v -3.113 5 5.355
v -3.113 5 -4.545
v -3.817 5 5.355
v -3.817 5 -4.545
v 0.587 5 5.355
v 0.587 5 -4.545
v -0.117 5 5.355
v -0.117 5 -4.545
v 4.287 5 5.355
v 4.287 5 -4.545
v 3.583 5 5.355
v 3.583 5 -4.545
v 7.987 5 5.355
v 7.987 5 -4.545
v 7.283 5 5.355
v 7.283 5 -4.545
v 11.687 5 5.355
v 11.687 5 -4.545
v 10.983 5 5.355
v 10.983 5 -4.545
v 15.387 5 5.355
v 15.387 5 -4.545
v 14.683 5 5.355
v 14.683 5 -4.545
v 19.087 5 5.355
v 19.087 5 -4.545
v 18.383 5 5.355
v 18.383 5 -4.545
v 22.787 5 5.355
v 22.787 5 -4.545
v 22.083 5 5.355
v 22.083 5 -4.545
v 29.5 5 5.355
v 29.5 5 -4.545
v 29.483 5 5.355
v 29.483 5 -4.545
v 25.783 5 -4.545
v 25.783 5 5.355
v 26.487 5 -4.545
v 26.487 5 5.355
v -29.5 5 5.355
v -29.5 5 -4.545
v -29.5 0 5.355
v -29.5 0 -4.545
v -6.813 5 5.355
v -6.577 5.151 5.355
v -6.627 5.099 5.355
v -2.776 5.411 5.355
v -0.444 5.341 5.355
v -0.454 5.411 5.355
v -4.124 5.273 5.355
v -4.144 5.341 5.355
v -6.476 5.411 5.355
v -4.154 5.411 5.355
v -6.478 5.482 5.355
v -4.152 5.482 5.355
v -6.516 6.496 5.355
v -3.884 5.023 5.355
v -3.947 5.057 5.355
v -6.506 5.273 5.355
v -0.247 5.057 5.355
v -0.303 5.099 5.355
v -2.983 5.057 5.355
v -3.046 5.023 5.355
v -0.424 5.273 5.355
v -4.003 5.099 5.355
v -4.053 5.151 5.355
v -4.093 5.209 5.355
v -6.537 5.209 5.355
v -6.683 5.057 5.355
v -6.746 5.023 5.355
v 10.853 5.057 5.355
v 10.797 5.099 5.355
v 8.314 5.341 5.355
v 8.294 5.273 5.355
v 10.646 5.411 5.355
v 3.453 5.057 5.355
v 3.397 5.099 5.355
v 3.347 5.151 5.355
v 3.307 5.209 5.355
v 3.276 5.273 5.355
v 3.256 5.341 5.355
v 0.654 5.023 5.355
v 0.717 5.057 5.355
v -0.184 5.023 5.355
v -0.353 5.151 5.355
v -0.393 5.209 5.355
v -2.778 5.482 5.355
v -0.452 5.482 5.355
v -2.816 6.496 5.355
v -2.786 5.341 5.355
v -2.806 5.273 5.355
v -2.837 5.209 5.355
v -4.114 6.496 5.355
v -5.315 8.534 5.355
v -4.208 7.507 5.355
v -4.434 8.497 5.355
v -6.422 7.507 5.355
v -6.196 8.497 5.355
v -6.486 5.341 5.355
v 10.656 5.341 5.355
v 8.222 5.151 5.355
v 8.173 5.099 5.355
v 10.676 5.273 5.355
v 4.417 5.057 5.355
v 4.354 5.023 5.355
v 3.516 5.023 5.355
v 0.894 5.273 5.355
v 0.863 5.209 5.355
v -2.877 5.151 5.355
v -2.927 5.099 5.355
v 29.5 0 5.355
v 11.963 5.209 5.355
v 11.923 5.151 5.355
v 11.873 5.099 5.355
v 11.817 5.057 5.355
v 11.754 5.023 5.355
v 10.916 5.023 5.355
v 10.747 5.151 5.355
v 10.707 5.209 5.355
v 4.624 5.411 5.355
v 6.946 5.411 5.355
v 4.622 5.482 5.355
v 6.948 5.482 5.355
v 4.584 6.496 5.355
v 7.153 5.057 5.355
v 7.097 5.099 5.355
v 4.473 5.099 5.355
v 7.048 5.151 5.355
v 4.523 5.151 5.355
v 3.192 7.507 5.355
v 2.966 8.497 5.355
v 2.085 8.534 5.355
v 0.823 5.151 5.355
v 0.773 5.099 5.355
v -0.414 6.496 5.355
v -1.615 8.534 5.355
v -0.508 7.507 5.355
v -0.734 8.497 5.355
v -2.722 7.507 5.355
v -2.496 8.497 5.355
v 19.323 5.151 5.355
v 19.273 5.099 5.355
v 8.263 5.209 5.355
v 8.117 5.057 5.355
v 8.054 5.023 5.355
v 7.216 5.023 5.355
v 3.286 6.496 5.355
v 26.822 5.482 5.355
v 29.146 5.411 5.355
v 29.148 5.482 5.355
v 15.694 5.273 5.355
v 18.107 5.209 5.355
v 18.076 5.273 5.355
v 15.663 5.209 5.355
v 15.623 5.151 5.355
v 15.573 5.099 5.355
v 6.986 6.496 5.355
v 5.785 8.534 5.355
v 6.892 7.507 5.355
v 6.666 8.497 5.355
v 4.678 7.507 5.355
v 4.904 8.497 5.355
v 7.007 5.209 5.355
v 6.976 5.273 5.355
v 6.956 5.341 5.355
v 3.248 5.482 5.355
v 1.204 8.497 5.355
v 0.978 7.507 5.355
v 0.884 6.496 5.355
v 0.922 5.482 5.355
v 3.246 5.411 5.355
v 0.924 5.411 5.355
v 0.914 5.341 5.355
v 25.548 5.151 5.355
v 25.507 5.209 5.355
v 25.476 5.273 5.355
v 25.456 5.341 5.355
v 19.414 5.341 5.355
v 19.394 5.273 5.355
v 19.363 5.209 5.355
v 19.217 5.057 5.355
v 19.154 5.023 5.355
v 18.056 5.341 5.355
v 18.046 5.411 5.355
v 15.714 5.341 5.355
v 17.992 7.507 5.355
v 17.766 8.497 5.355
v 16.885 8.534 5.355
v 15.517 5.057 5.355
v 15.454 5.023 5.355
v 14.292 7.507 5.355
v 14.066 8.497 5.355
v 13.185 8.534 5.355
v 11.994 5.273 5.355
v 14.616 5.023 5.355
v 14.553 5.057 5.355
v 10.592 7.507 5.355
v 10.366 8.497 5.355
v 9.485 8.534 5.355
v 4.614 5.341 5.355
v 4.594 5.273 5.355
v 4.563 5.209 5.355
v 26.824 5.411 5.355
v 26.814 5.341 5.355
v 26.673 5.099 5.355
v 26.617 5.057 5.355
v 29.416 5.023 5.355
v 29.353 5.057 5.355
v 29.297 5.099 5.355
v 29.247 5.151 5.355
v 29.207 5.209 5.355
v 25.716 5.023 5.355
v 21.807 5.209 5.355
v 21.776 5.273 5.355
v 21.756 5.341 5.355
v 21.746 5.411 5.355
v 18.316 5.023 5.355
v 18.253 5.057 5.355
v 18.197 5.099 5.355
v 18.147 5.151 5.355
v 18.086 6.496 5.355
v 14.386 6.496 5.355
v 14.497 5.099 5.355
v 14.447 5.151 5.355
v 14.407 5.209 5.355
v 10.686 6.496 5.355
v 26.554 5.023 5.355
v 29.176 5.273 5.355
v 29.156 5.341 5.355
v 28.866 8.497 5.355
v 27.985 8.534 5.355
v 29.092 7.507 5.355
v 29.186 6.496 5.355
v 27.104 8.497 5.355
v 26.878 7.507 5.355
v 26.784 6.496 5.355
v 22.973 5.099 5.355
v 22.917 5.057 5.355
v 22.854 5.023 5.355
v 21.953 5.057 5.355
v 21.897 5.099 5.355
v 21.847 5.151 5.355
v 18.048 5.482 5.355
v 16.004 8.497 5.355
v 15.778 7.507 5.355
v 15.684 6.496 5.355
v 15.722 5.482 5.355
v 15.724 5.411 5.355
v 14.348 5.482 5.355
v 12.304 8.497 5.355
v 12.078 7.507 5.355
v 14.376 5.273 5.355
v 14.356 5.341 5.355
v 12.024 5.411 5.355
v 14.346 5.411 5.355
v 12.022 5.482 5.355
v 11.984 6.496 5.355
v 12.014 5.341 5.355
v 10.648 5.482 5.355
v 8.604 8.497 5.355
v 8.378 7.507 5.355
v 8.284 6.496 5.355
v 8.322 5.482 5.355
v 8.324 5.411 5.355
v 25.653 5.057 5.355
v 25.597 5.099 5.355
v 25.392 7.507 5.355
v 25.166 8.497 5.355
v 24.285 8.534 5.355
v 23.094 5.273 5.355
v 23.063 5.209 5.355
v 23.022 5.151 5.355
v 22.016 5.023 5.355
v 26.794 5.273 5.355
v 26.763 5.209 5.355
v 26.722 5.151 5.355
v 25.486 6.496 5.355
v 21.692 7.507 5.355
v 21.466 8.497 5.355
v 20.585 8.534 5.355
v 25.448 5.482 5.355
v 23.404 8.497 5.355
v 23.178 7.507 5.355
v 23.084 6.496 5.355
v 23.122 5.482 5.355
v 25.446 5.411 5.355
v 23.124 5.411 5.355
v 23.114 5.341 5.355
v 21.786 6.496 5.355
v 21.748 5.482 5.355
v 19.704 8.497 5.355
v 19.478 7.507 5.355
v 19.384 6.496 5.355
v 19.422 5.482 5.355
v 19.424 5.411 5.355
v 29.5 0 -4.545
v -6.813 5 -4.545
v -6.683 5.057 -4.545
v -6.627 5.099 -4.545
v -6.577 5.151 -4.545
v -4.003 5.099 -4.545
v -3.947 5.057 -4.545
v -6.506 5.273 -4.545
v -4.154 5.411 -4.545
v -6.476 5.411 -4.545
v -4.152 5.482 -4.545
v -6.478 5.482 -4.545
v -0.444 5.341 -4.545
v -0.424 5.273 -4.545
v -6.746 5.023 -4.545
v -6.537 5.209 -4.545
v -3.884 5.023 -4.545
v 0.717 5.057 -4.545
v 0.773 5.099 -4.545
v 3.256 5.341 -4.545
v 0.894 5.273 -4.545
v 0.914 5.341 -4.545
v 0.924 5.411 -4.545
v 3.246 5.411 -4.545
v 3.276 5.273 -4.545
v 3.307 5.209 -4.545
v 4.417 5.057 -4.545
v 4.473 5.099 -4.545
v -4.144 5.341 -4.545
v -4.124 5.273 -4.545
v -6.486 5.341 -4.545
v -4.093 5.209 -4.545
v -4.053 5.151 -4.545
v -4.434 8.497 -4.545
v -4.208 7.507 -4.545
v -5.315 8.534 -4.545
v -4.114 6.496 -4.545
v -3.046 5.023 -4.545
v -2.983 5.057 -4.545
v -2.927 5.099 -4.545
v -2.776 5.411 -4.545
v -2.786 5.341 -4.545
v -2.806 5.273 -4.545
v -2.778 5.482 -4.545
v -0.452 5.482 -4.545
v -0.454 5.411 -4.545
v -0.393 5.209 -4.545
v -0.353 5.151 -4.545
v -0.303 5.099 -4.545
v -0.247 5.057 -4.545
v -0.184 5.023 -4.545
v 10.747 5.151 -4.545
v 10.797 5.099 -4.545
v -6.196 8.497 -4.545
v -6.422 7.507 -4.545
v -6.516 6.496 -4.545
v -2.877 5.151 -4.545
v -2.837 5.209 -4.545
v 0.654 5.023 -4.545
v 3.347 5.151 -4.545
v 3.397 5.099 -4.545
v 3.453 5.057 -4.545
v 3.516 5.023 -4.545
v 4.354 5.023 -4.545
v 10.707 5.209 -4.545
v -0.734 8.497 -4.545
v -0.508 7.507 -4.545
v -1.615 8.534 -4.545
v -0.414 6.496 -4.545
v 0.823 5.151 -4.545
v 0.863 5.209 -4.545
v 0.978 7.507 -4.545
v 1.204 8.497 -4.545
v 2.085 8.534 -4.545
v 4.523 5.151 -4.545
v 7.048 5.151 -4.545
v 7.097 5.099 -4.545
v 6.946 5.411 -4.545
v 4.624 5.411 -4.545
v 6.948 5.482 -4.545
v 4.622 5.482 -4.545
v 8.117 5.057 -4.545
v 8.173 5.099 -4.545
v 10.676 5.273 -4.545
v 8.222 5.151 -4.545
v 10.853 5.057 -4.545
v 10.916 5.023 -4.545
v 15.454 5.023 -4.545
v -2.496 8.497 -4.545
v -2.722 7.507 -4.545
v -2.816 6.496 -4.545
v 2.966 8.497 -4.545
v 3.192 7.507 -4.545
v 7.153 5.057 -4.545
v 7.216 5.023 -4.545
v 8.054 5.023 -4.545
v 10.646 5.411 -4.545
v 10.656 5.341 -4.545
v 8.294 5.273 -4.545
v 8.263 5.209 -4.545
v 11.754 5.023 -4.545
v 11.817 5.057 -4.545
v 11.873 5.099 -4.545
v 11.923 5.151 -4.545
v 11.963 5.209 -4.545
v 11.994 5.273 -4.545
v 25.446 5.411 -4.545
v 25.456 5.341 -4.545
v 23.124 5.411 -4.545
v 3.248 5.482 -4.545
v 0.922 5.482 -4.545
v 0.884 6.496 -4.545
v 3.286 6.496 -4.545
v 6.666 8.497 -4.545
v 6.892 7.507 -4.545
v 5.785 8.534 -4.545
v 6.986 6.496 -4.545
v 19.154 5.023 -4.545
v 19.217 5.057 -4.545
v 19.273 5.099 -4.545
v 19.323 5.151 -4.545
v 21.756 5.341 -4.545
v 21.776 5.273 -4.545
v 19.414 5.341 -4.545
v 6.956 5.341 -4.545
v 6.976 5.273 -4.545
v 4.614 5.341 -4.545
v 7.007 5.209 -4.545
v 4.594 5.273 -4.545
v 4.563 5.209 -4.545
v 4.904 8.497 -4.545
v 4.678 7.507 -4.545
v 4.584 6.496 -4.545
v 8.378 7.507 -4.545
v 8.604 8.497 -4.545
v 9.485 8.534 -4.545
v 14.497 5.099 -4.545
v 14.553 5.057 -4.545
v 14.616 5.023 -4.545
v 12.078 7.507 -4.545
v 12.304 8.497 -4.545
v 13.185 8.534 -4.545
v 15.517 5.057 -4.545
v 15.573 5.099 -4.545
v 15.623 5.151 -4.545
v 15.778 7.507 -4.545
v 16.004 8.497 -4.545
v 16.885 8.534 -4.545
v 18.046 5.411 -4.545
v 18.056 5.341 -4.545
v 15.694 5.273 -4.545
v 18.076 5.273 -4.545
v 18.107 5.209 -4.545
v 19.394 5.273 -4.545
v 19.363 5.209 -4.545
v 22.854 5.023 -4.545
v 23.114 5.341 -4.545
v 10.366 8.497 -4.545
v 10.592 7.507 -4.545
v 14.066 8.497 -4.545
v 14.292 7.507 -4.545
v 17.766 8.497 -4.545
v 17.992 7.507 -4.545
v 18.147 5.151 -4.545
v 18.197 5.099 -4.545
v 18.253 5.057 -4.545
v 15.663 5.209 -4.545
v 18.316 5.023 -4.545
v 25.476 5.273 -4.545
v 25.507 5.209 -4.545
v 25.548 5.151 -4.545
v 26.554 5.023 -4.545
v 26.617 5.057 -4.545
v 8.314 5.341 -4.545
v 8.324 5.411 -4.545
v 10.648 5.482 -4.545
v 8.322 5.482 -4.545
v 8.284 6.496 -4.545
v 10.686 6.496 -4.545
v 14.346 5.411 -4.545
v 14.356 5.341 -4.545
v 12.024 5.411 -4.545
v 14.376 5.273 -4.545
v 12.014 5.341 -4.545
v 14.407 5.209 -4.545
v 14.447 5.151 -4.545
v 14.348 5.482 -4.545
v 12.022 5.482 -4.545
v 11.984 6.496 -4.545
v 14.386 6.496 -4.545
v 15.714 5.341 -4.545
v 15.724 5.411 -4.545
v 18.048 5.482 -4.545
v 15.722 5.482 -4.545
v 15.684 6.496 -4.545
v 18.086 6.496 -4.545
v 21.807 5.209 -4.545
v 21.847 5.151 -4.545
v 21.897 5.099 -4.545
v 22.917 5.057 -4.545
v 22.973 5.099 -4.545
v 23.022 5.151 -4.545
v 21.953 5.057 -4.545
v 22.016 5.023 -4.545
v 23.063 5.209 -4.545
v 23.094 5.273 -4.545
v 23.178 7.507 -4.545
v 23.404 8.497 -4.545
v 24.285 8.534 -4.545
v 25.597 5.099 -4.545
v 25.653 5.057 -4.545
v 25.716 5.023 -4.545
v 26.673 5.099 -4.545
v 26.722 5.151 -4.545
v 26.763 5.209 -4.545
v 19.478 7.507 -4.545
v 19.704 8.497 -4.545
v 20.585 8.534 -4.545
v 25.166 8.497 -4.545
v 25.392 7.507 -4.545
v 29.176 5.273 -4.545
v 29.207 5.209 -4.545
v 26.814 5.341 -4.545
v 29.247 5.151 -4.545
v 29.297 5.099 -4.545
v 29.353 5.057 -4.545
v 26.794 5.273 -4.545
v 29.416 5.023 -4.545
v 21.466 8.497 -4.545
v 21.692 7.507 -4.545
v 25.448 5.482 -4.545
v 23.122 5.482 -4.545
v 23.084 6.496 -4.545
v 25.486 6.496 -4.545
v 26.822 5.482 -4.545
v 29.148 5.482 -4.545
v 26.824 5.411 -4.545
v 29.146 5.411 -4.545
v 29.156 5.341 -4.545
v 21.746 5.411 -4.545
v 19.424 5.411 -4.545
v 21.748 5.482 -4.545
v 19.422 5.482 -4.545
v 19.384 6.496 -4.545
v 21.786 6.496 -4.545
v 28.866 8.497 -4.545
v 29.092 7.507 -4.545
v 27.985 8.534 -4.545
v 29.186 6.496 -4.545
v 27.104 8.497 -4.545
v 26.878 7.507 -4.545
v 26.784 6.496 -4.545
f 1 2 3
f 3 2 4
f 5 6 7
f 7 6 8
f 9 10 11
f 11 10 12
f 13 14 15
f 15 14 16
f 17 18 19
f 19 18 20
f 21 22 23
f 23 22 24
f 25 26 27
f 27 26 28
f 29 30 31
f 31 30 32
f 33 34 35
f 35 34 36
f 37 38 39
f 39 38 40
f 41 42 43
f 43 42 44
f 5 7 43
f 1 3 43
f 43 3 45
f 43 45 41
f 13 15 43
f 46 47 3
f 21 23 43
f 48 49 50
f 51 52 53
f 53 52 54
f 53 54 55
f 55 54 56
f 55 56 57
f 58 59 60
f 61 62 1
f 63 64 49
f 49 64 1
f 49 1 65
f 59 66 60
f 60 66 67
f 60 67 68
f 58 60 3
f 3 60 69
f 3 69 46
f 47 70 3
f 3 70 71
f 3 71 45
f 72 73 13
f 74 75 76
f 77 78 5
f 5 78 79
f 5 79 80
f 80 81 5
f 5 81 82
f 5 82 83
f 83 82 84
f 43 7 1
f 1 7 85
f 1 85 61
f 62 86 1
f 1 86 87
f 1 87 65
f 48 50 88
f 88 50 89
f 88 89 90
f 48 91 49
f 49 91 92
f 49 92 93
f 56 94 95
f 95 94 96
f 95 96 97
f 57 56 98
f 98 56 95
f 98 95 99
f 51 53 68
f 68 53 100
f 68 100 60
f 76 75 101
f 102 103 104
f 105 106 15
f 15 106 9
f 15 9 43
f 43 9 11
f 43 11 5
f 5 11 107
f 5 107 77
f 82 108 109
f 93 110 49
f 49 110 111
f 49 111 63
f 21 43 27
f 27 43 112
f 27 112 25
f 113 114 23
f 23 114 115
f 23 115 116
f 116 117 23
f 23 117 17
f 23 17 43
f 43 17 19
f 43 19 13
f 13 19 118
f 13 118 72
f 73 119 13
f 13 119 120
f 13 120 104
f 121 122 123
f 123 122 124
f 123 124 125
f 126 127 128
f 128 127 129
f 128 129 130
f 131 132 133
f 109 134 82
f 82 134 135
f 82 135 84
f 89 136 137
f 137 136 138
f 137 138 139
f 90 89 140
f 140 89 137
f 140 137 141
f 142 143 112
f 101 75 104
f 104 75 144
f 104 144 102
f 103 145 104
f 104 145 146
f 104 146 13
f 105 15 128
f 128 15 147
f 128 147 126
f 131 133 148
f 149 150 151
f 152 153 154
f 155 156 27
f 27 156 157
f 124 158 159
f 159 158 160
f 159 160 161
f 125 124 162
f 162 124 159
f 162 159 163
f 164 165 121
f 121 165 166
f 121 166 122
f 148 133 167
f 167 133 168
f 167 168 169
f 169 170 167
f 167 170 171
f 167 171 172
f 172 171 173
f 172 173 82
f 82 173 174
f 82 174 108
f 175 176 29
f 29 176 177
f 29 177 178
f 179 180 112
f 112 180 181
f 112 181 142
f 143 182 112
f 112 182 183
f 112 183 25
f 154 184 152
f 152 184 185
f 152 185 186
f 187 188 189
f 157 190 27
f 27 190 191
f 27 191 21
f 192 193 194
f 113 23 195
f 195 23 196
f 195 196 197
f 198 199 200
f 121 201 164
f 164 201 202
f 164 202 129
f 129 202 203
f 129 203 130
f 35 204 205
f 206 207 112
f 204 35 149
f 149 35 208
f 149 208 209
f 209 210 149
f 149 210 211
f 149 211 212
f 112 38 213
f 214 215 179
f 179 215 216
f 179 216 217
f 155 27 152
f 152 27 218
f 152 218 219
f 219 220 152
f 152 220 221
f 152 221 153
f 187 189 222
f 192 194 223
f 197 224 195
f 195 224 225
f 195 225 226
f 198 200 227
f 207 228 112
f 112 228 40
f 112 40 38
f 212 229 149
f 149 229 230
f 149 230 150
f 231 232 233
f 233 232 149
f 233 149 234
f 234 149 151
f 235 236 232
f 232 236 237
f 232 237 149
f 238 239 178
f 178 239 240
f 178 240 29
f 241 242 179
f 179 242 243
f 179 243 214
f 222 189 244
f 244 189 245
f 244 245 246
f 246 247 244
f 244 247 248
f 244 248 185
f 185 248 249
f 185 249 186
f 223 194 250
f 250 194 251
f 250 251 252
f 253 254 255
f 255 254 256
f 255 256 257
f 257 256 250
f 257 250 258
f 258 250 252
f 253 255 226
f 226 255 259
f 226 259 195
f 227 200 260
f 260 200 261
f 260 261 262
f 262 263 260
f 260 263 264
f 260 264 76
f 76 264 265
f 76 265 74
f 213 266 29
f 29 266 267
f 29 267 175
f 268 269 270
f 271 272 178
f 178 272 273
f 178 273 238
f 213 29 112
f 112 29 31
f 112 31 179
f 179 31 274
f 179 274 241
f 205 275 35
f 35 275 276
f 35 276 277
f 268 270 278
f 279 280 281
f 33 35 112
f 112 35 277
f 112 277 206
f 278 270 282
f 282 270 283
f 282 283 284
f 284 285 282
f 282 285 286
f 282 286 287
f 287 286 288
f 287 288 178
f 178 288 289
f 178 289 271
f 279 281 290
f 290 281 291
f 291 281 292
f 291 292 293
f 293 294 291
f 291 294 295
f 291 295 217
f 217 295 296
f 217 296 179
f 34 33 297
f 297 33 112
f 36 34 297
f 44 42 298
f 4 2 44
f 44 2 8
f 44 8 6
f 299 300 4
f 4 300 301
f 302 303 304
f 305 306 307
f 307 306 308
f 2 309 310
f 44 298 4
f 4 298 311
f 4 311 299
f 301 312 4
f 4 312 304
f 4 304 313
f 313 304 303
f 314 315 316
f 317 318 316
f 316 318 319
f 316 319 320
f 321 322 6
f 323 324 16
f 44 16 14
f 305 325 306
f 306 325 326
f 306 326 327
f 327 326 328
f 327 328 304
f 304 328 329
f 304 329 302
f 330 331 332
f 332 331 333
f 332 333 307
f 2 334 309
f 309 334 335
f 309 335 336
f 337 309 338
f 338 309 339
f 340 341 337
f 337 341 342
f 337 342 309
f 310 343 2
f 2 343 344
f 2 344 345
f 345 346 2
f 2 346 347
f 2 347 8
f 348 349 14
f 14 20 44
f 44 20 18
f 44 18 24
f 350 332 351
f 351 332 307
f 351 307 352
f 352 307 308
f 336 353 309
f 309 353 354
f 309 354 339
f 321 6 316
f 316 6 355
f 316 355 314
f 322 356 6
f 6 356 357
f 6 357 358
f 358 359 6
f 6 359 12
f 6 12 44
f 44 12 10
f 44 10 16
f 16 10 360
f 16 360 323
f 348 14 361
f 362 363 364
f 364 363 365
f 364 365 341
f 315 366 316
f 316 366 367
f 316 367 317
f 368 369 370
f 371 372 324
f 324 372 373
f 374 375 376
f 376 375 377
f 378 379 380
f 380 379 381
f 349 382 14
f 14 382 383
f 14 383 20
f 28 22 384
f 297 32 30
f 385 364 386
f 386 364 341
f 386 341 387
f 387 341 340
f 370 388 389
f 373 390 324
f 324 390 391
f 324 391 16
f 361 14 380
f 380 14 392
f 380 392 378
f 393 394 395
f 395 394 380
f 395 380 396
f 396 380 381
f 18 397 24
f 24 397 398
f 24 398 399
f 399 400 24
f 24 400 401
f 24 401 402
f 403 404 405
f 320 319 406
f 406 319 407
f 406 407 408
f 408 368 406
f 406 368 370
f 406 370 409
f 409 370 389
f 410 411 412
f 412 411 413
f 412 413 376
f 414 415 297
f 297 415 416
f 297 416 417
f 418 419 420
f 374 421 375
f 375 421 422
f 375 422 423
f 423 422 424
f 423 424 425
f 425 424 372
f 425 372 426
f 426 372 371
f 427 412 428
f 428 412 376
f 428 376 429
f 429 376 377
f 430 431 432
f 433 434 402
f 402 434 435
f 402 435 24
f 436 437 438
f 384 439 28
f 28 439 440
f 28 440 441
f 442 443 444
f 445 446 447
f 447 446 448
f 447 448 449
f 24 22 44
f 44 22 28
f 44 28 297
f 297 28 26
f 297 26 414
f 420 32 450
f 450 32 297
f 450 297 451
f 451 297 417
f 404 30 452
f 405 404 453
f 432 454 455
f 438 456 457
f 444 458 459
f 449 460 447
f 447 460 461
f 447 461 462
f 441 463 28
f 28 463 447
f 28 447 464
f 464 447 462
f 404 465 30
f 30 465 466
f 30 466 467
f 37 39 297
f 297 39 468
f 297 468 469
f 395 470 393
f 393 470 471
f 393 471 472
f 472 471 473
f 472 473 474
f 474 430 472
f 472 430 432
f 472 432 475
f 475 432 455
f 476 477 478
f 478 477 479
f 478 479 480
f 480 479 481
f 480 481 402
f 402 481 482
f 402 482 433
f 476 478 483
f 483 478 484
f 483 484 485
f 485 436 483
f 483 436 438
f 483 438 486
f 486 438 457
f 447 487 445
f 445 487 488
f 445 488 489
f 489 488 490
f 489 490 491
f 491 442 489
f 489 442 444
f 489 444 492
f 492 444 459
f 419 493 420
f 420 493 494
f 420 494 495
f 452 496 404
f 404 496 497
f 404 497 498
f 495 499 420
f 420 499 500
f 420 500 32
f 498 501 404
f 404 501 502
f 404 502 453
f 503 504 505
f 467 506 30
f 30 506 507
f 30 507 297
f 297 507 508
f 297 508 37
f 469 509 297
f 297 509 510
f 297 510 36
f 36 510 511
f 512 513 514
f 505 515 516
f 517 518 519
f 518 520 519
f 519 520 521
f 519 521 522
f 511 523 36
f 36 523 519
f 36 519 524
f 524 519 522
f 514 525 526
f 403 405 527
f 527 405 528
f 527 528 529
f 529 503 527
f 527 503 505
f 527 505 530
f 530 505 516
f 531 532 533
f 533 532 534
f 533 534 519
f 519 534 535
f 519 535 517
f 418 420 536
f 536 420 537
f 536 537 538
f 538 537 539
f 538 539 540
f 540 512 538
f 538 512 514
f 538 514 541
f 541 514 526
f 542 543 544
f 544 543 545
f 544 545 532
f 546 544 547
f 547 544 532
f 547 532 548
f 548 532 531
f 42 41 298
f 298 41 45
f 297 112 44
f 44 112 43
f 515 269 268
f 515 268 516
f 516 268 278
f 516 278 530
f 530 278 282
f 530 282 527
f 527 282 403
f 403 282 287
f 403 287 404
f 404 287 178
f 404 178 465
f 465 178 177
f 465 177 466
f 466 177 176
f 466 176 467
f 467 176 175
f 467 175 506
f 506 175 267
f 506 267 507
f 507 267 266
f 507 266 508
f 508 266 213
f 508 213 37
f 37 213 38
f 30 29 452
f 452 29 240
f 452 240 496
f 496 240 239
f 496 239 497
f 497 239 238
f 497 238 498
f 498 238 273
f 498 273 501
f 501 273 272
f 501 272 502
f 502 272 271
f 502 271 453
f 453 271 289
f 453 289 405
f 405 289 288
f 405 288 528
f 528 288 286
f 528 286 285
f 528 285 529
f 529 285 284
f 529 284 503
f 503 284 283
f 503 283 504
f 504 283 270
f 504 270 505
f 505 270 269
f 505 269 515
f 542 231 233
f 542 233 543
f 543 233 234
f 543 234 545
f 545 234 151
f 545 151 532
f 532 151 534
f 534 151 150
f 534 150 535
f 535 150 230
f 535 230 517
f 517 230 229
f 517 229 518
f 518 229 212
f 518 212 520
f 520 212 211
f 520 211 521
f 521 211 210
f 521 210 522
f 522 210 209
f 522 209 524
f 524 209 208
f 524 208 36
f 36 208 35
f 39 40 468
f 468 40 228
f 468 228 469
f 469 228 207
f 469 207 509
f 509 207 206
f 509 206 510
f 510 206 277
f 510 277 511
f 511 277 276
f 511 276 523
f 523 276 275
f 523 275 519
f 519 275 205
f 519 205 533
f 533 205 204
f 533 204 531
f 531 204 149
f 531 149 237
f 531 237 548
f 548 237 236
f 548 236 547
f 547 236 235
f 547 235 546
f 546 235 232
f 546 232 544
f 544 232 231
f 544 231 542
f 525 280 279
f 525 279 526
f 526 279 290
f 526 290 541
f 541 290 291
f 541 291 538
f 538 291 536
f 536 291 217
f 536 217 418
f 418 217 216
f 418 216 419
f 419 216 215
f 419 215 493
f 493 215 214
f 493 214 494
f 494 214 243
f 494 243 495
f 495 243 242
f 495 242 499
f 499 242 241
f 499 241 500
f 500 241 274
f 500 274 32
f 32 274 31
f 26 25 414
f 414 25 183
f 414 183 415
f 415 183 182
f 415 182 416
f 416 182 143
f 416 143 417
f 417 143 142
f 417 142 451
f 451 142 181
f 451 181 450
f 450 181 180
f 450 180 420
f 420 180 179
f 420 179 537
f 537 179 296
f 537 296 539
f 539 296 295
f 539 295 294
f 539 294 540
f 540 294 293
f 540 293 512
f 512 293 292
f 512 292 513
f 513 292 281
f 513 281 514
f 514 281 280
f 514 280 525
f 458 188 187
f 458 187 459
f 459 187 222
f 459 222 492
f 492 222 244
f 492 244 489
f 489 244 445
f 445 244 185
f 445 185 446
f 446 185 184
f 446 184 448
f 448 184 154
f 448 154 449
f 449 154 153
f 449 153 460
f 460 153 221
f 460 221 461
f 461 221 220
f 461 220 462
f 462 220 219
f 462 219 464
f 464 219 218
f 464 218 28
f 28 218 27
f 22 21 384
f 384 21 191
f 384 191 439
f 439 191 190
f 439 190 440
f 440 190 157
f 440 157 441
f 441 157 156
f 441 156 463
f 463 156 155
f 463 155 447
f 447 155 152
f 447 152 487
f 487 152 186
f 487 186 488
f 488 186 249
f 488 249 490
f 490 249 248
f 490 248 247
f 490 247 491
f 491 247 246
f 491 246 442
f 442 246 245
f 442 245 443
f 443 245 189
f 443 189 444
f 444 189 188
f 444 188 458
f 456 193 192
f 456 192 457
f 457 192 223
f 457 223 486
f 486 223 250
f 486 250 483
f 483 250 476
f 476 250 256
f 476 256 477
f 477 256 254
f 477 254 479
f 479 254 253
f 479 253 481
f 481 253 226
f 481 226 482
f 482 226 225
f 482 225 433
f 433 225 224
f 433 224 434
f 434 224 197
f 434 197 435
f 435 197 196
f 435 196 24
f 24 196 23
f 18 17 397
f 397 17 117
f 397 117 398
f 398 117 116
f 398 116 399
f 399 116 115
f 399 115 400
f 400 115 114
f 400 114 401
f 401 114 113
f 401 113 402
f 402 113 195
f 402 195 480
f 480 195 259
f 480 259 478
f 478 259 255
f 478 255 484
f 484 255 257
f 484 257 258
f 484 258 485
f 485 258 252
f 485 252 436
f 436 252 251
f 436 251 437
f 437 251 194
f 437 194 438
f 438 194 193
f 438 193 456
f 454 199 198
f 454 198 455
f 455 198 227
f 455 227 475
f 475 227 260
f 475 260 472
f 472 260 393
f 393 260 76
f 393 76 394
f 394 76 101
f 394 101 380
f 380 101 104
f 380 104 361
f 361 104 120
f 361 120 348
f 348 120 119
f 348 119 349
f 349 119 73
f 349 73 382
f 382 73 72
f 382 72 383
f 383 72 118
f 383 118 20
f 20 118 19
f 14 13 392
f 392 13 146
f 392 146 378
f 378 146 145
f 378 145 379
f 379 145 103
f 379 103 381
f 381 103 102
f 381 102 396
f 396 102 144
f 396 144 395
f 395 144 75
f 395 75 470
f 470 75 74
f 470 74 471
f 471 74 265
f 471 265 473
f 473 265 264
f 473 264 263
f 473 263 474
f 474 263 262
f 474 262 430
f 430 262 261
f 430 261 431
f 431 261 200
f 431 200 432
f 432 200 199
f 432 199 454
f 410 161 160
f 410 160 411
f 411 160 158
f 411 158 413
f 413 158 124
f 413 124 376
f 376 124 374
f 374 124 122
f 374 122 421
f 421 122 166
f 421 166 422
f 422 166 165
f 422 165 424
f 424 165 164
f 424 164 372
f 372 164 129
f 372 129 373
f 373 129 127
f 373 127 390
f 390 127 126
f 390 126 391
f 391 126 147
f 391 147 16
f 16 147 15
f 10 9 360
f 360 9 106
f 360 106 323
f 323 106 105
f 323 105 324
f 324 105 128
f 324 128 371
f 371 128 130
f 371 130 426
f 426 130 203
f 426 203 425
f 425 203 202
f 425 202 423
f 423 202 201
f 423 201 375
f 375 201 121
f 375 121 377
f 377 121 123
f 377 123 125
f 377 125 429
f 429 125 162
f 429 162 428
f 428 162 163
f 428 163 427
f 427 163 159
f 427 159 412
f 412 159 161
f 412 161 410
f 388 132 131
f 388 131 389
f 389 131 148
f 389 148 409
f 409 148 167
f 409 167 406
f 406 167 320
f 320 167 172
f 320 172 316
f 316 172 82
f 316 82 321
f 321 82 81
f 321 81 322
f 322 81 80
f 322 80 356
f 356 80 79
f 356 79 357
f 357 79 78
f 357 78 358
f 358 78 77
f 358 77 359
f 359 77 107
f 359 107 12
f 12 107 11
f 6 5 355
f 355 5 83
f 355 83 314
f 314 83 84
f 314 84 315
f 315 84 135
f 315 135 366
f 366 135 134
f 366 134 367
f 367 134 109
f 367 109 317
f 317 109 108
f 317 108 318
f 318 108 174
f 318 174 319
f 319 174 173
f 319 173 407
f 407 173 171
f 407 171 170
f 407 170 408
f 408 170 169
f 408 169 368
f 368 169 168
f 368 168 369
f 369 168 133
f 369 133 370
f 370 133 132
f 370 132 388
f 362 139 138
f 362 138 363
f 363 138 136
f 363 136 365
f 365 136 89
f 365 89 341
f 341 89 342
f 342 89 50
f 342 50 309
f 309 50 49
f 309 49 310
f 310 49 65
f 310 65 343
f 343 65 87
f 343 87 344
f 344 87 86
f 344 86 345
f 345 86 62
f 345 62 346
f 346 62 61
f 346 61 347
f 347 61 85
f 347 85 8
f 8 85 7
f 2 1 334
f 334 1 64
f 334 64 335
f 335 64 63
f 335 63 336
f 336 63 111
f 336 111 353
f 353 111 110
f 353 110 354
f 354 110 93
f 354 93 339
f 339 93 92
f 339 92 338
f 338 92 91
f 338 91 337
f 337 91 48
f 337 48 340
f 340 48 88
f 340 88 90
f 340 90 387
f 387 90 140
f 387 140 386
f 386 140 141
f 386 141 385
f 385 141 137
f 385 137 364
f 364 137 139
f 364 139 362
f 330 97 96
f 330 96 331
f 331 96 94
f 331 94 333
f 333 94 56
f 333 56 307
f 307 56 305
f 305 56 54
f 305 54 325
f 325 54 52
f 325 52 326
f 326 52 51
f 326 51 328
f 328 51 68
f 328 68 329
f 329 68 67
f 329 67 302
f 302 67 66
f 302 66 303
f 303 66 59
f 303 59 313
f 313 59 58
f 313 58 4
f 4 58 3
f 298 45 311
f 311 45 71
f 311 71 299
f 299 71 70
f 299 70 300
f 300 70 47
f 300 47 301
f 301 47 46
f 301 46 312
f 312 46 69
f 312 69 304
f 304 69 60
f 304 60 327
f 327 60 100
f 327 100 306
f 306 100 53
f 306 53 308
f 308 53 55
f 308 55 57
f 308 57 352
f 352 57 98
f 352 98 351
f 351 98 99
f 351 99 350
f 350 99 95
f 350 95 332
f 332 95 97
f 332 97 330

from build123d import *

# Parameters (mm, degrees)
SKETCH1_W           = 59
SKETCH1_H           = 9.9
BOSS_EXTRUDE1_DEPTH = 5
BOSS_EXTRUDE4_DEPTH = 9.9


with BuildPart() as part:
    # Sketch1 → Boss-Extrude1 (new body)
    with BuildSketch(Plane(origin=(0, 0, 0), x_dir=(1, 0, 0), z_dir=(0, 1, 0))):
        with Locations((0, -0.405)):
            Rectangle(SKETCH1_W, SKETCH1_H)
    extrude(amount=BOSS_EXTRUDE1_DEPTH)

    # Sketch7 → Boss-Extrude4 (add, through all)
    with BuildSketch(Plane.XY.offset(5.355)):
        with BuildLine():
            Line((26.46999961, 4.995918044), (29.5, 4.995918044))
            ThreePointArc((29.5, 4.995918044), (29.231205307, 5.171705077), (29.148072876, 5.481931876))
            ThreePointArc((29.148072876, 5.481931876), (29.15553464, 7.003264285), (28.866052019, 8.496819705))
            ThreePointArc((28.866052019, 8.496819705), (27.984999805, 8.533849429), (27.103947591, 8.496819705))
            ThreePointArc((27.103947591, 8.496819705), (26.81446497, 7.003264285), (26.821926734, 5.481931876))
            ThreePointArc((26.821926734, 5.481931876), (26.738794303, 5.171705077), (26.46999961, 4.995918044))
        make_face()
        with BuildLine():
            Line((7.96999961, 4.995918044), (11, 4.995918044))
            ThreePointArc((11, 4.995918044), (10.731205307, 5.171705077), (10.648072876, 5.481931876))
            ThreePointArc((10.648072876, 5.481931876), (10.65553464, 7.003264285), (10.366052019, 8.496819705))
            ThreePointArc((10.366052019, 8.496819705), (9.484999805, 8.533849429), (8.603947591, 8.496819705))
            ThreePointArc((8.603947591, 8.496819705), (8.31446497, 7.003264285), (8.321926734, 5.481931876))
            ThreePointArc((8.321926734, 5.481931876), (8.238794303, 5.171705077), (7.96999961, 4.995918044))
        make_face()
        with BuildLine():
            Line((22.76999961, 4.995918044), (25.8, 4.995918044))
            ThreePointArc((25.8, 4.995918044), (25.531205307, 5.171705077), (25.448072876, 5.481931876))
            ThreePointArc((25.448072876, 5.481931876), (25.45553464, 7.003264285), (25.166052019, 8.496819705))
            ThreePointArc((25.166052019, 8.496819705), (24.284999805, 8.533849429), (23.403947591, 8.496819705))
            ThreePointArc((23.403947591, 8.496819705), (23.11446497, 7.003264285), (23.121926734, 5.481931876))
            ThreePointArc((23.121926734, 5.481931876), (23.038794303, 5.171705077), (22.76999961, 4.995918044))
        make_face()
        with BuildLine():
            Line((19.06999961, 4.995918044), (22.1, 4.995918044))
            ThreePointArc((22.1, 4.995918044), (21.831205307, 5.171705077), (21.748072876, 5.481931876))
            ThreePointArc((21.748072876, 5.481931876), (21.75553464, 7.003264285), (21.466052019, 8.496819705))
            ThreePointArc((21.466052019, 8.496819705), (20.584999805, 8.533849429), (19.703947591, 8.496819705))
            ThreePointArc((19.703947591, 8.496819705), (19.41446497, 7.003264285), (19.421926734, 5.481931876))
            ThreePointArc((19.421926734, 5.481931876), (19.338794303, 5.171705077), (19.06999961, 4.995918044))
        make_face()
        with BuildLine():
            Line((15.36999961, 4.995918044), (18.4, 4.995918044))
            ThreePointArc((18.4, 4.995918044), (18.131205307, 5.171705077), (18.048072876, 5.481931876))
            ThreePointArc((18.048072876, 5.481931876), (18.05553464, 7.003264285), (17.766052019, 8.496819705))
            ThreePointArc((17.766052019, 8.496819705), (16.884999805, 8.533849429), (16.003947591, 8.496819705))
            ThreePointArc((16.003947591, 8.496819705), (15.71446497, 7.003264285), (15.721926734, 5.481931876))
            ThreePointArc((15.721926734, 5.481931876), (15.638794303, 5.171705077), (15.36999961, 4.995918044))
        make_face()
        with BuildLine():
            Line((11.66999961, 4.995918044), (14.7, 4.995918044))
            ThreePointArc((14.7, 4.995918044), (14.431205307, 5.171705077), (14.348072876, 5.481931876))
            ThreePointArc((14.348072876, 5.481931876), (14.35553464, 7.003264285), (14.066052019, 8.496819705))
            ThreePointArc((14.066052019, 8.496819705), (13.184999805, 8.533849429), (12.303947591, 8.496819705))
            ThreePointArc((12.303947591, 8.496819705), (12.01446497, 7.003264285), (12.021926734, 5.481931876))
            ThreePointArc((12.021926734, 5.481931876), (11.938794303, 5.171705077), (11.66999961, 4.995918044))
        make_face()
        with BuildLine():
            Line((4.26999961, 4.995918044), (7.3, 4.995918044))
            ThreePointArc((7.3, 4.995918044), (7.031205307, 5.171705077), (6.948072876, 5.481931876))
            ThreePointArc((6.948072876, 5.481931876), (6.95553464, 7.003264285), (6.666052019, 8.496819705))
            ThreePointArc((6.666052019, 8.496819705), (5.784999805, 8.533849429), (4.903947591, 8.496819705))
            ThreePointArc((4.903947591, 8.496819705), (4.61446497, 7.003264285), (4.621926734, 5.481931876))
            ThreePointArc((4.621926734, 5.481931876), (4.538794303, 5.171705077), (4.26999961, 4.995918044))
        make_face()
        with BuildLine():
            Line((0.56999961, 4.995918044), (3.6, 4.995918044))
            ThreePointArc((3.6, 4.995918044), (3.331205307, 5.171705077), (3.248072876, 5.481931876))
            ThreePointArc((3.248072876, 5.481931876), (3.25553464, 7.003264285), (2.966052019, 8.496819705))
            ThreePointArc((2.966052019, 8.496819705), (2.084999805, 8.533849429), (1.203947591, 8.496819705))
            ThreePointArc((1.203947591, 8.496819705), (0.91446497, 7.003264285), (0.921926734, 5.481931876))
            ThreePointArc((0.921926734, 5.481931876), (0.838794303, 5.171705077), (0.56999961, 4.995918044))
        make_face()
        with BuildLine():
            Line((-3.13000039, 4.995918044), (-0.1, 4.995918044))
            ThreePointArc((-0.1, 4.995918044), (-0.368794693, 5.171705077), (-0.451927124, 5.481931876))
            ThreePointArc((-0.451927124, 5.481931876), (-0.44446536, 7.003264285), (-0.733947981, 8.496819705))
            ThreePointArc((-0.733947981, 8.496819705), (-1.615000195, 8.533849429), (-2.496052409, 8.496819705))
            ThreePointArc((-2.496052409, 8.496819705), (-2.78553503, 7.003264285), (-2.778073266, 5.481931876))
            ThreePointArc((-2.778073266, 5.481931876), (-2.861205697, 5.171705077), (-3.13000039, 4.995918044))
        make_face()
        with BuildLine():
            Line((-6.83000039, 4.995918044), (-3.8, 4.995918044))
            ThreePointArc((-3.8, 4.995918044), (-4.068794693, 5.171705077), (-4.151927124, 5.481931876))
            ThreePointArc((-4.151927124, 5.481931876), (-4.14446536, 7.003264285), (-4.433947981, 8.496819705))
            ThreePointArc((-4.433947981, 8.496819705), (-5.315000195, 8.533849429), (-6.196052409, 8.496819705))
            ThreePointArc((-6.196052409, 8.496819705), (-6.48553503, 7.003264285), (-6.478073266, 5.481931876))
            ThreePointArc((-6.478073266, 5.481931876), (-6.561205697, 5.171705077), (-6.83000039, 4.995918044))
        make_face()
    extrude(amount=-BOSS_EXTRUDE4_DEPTH)


solid = part.part
